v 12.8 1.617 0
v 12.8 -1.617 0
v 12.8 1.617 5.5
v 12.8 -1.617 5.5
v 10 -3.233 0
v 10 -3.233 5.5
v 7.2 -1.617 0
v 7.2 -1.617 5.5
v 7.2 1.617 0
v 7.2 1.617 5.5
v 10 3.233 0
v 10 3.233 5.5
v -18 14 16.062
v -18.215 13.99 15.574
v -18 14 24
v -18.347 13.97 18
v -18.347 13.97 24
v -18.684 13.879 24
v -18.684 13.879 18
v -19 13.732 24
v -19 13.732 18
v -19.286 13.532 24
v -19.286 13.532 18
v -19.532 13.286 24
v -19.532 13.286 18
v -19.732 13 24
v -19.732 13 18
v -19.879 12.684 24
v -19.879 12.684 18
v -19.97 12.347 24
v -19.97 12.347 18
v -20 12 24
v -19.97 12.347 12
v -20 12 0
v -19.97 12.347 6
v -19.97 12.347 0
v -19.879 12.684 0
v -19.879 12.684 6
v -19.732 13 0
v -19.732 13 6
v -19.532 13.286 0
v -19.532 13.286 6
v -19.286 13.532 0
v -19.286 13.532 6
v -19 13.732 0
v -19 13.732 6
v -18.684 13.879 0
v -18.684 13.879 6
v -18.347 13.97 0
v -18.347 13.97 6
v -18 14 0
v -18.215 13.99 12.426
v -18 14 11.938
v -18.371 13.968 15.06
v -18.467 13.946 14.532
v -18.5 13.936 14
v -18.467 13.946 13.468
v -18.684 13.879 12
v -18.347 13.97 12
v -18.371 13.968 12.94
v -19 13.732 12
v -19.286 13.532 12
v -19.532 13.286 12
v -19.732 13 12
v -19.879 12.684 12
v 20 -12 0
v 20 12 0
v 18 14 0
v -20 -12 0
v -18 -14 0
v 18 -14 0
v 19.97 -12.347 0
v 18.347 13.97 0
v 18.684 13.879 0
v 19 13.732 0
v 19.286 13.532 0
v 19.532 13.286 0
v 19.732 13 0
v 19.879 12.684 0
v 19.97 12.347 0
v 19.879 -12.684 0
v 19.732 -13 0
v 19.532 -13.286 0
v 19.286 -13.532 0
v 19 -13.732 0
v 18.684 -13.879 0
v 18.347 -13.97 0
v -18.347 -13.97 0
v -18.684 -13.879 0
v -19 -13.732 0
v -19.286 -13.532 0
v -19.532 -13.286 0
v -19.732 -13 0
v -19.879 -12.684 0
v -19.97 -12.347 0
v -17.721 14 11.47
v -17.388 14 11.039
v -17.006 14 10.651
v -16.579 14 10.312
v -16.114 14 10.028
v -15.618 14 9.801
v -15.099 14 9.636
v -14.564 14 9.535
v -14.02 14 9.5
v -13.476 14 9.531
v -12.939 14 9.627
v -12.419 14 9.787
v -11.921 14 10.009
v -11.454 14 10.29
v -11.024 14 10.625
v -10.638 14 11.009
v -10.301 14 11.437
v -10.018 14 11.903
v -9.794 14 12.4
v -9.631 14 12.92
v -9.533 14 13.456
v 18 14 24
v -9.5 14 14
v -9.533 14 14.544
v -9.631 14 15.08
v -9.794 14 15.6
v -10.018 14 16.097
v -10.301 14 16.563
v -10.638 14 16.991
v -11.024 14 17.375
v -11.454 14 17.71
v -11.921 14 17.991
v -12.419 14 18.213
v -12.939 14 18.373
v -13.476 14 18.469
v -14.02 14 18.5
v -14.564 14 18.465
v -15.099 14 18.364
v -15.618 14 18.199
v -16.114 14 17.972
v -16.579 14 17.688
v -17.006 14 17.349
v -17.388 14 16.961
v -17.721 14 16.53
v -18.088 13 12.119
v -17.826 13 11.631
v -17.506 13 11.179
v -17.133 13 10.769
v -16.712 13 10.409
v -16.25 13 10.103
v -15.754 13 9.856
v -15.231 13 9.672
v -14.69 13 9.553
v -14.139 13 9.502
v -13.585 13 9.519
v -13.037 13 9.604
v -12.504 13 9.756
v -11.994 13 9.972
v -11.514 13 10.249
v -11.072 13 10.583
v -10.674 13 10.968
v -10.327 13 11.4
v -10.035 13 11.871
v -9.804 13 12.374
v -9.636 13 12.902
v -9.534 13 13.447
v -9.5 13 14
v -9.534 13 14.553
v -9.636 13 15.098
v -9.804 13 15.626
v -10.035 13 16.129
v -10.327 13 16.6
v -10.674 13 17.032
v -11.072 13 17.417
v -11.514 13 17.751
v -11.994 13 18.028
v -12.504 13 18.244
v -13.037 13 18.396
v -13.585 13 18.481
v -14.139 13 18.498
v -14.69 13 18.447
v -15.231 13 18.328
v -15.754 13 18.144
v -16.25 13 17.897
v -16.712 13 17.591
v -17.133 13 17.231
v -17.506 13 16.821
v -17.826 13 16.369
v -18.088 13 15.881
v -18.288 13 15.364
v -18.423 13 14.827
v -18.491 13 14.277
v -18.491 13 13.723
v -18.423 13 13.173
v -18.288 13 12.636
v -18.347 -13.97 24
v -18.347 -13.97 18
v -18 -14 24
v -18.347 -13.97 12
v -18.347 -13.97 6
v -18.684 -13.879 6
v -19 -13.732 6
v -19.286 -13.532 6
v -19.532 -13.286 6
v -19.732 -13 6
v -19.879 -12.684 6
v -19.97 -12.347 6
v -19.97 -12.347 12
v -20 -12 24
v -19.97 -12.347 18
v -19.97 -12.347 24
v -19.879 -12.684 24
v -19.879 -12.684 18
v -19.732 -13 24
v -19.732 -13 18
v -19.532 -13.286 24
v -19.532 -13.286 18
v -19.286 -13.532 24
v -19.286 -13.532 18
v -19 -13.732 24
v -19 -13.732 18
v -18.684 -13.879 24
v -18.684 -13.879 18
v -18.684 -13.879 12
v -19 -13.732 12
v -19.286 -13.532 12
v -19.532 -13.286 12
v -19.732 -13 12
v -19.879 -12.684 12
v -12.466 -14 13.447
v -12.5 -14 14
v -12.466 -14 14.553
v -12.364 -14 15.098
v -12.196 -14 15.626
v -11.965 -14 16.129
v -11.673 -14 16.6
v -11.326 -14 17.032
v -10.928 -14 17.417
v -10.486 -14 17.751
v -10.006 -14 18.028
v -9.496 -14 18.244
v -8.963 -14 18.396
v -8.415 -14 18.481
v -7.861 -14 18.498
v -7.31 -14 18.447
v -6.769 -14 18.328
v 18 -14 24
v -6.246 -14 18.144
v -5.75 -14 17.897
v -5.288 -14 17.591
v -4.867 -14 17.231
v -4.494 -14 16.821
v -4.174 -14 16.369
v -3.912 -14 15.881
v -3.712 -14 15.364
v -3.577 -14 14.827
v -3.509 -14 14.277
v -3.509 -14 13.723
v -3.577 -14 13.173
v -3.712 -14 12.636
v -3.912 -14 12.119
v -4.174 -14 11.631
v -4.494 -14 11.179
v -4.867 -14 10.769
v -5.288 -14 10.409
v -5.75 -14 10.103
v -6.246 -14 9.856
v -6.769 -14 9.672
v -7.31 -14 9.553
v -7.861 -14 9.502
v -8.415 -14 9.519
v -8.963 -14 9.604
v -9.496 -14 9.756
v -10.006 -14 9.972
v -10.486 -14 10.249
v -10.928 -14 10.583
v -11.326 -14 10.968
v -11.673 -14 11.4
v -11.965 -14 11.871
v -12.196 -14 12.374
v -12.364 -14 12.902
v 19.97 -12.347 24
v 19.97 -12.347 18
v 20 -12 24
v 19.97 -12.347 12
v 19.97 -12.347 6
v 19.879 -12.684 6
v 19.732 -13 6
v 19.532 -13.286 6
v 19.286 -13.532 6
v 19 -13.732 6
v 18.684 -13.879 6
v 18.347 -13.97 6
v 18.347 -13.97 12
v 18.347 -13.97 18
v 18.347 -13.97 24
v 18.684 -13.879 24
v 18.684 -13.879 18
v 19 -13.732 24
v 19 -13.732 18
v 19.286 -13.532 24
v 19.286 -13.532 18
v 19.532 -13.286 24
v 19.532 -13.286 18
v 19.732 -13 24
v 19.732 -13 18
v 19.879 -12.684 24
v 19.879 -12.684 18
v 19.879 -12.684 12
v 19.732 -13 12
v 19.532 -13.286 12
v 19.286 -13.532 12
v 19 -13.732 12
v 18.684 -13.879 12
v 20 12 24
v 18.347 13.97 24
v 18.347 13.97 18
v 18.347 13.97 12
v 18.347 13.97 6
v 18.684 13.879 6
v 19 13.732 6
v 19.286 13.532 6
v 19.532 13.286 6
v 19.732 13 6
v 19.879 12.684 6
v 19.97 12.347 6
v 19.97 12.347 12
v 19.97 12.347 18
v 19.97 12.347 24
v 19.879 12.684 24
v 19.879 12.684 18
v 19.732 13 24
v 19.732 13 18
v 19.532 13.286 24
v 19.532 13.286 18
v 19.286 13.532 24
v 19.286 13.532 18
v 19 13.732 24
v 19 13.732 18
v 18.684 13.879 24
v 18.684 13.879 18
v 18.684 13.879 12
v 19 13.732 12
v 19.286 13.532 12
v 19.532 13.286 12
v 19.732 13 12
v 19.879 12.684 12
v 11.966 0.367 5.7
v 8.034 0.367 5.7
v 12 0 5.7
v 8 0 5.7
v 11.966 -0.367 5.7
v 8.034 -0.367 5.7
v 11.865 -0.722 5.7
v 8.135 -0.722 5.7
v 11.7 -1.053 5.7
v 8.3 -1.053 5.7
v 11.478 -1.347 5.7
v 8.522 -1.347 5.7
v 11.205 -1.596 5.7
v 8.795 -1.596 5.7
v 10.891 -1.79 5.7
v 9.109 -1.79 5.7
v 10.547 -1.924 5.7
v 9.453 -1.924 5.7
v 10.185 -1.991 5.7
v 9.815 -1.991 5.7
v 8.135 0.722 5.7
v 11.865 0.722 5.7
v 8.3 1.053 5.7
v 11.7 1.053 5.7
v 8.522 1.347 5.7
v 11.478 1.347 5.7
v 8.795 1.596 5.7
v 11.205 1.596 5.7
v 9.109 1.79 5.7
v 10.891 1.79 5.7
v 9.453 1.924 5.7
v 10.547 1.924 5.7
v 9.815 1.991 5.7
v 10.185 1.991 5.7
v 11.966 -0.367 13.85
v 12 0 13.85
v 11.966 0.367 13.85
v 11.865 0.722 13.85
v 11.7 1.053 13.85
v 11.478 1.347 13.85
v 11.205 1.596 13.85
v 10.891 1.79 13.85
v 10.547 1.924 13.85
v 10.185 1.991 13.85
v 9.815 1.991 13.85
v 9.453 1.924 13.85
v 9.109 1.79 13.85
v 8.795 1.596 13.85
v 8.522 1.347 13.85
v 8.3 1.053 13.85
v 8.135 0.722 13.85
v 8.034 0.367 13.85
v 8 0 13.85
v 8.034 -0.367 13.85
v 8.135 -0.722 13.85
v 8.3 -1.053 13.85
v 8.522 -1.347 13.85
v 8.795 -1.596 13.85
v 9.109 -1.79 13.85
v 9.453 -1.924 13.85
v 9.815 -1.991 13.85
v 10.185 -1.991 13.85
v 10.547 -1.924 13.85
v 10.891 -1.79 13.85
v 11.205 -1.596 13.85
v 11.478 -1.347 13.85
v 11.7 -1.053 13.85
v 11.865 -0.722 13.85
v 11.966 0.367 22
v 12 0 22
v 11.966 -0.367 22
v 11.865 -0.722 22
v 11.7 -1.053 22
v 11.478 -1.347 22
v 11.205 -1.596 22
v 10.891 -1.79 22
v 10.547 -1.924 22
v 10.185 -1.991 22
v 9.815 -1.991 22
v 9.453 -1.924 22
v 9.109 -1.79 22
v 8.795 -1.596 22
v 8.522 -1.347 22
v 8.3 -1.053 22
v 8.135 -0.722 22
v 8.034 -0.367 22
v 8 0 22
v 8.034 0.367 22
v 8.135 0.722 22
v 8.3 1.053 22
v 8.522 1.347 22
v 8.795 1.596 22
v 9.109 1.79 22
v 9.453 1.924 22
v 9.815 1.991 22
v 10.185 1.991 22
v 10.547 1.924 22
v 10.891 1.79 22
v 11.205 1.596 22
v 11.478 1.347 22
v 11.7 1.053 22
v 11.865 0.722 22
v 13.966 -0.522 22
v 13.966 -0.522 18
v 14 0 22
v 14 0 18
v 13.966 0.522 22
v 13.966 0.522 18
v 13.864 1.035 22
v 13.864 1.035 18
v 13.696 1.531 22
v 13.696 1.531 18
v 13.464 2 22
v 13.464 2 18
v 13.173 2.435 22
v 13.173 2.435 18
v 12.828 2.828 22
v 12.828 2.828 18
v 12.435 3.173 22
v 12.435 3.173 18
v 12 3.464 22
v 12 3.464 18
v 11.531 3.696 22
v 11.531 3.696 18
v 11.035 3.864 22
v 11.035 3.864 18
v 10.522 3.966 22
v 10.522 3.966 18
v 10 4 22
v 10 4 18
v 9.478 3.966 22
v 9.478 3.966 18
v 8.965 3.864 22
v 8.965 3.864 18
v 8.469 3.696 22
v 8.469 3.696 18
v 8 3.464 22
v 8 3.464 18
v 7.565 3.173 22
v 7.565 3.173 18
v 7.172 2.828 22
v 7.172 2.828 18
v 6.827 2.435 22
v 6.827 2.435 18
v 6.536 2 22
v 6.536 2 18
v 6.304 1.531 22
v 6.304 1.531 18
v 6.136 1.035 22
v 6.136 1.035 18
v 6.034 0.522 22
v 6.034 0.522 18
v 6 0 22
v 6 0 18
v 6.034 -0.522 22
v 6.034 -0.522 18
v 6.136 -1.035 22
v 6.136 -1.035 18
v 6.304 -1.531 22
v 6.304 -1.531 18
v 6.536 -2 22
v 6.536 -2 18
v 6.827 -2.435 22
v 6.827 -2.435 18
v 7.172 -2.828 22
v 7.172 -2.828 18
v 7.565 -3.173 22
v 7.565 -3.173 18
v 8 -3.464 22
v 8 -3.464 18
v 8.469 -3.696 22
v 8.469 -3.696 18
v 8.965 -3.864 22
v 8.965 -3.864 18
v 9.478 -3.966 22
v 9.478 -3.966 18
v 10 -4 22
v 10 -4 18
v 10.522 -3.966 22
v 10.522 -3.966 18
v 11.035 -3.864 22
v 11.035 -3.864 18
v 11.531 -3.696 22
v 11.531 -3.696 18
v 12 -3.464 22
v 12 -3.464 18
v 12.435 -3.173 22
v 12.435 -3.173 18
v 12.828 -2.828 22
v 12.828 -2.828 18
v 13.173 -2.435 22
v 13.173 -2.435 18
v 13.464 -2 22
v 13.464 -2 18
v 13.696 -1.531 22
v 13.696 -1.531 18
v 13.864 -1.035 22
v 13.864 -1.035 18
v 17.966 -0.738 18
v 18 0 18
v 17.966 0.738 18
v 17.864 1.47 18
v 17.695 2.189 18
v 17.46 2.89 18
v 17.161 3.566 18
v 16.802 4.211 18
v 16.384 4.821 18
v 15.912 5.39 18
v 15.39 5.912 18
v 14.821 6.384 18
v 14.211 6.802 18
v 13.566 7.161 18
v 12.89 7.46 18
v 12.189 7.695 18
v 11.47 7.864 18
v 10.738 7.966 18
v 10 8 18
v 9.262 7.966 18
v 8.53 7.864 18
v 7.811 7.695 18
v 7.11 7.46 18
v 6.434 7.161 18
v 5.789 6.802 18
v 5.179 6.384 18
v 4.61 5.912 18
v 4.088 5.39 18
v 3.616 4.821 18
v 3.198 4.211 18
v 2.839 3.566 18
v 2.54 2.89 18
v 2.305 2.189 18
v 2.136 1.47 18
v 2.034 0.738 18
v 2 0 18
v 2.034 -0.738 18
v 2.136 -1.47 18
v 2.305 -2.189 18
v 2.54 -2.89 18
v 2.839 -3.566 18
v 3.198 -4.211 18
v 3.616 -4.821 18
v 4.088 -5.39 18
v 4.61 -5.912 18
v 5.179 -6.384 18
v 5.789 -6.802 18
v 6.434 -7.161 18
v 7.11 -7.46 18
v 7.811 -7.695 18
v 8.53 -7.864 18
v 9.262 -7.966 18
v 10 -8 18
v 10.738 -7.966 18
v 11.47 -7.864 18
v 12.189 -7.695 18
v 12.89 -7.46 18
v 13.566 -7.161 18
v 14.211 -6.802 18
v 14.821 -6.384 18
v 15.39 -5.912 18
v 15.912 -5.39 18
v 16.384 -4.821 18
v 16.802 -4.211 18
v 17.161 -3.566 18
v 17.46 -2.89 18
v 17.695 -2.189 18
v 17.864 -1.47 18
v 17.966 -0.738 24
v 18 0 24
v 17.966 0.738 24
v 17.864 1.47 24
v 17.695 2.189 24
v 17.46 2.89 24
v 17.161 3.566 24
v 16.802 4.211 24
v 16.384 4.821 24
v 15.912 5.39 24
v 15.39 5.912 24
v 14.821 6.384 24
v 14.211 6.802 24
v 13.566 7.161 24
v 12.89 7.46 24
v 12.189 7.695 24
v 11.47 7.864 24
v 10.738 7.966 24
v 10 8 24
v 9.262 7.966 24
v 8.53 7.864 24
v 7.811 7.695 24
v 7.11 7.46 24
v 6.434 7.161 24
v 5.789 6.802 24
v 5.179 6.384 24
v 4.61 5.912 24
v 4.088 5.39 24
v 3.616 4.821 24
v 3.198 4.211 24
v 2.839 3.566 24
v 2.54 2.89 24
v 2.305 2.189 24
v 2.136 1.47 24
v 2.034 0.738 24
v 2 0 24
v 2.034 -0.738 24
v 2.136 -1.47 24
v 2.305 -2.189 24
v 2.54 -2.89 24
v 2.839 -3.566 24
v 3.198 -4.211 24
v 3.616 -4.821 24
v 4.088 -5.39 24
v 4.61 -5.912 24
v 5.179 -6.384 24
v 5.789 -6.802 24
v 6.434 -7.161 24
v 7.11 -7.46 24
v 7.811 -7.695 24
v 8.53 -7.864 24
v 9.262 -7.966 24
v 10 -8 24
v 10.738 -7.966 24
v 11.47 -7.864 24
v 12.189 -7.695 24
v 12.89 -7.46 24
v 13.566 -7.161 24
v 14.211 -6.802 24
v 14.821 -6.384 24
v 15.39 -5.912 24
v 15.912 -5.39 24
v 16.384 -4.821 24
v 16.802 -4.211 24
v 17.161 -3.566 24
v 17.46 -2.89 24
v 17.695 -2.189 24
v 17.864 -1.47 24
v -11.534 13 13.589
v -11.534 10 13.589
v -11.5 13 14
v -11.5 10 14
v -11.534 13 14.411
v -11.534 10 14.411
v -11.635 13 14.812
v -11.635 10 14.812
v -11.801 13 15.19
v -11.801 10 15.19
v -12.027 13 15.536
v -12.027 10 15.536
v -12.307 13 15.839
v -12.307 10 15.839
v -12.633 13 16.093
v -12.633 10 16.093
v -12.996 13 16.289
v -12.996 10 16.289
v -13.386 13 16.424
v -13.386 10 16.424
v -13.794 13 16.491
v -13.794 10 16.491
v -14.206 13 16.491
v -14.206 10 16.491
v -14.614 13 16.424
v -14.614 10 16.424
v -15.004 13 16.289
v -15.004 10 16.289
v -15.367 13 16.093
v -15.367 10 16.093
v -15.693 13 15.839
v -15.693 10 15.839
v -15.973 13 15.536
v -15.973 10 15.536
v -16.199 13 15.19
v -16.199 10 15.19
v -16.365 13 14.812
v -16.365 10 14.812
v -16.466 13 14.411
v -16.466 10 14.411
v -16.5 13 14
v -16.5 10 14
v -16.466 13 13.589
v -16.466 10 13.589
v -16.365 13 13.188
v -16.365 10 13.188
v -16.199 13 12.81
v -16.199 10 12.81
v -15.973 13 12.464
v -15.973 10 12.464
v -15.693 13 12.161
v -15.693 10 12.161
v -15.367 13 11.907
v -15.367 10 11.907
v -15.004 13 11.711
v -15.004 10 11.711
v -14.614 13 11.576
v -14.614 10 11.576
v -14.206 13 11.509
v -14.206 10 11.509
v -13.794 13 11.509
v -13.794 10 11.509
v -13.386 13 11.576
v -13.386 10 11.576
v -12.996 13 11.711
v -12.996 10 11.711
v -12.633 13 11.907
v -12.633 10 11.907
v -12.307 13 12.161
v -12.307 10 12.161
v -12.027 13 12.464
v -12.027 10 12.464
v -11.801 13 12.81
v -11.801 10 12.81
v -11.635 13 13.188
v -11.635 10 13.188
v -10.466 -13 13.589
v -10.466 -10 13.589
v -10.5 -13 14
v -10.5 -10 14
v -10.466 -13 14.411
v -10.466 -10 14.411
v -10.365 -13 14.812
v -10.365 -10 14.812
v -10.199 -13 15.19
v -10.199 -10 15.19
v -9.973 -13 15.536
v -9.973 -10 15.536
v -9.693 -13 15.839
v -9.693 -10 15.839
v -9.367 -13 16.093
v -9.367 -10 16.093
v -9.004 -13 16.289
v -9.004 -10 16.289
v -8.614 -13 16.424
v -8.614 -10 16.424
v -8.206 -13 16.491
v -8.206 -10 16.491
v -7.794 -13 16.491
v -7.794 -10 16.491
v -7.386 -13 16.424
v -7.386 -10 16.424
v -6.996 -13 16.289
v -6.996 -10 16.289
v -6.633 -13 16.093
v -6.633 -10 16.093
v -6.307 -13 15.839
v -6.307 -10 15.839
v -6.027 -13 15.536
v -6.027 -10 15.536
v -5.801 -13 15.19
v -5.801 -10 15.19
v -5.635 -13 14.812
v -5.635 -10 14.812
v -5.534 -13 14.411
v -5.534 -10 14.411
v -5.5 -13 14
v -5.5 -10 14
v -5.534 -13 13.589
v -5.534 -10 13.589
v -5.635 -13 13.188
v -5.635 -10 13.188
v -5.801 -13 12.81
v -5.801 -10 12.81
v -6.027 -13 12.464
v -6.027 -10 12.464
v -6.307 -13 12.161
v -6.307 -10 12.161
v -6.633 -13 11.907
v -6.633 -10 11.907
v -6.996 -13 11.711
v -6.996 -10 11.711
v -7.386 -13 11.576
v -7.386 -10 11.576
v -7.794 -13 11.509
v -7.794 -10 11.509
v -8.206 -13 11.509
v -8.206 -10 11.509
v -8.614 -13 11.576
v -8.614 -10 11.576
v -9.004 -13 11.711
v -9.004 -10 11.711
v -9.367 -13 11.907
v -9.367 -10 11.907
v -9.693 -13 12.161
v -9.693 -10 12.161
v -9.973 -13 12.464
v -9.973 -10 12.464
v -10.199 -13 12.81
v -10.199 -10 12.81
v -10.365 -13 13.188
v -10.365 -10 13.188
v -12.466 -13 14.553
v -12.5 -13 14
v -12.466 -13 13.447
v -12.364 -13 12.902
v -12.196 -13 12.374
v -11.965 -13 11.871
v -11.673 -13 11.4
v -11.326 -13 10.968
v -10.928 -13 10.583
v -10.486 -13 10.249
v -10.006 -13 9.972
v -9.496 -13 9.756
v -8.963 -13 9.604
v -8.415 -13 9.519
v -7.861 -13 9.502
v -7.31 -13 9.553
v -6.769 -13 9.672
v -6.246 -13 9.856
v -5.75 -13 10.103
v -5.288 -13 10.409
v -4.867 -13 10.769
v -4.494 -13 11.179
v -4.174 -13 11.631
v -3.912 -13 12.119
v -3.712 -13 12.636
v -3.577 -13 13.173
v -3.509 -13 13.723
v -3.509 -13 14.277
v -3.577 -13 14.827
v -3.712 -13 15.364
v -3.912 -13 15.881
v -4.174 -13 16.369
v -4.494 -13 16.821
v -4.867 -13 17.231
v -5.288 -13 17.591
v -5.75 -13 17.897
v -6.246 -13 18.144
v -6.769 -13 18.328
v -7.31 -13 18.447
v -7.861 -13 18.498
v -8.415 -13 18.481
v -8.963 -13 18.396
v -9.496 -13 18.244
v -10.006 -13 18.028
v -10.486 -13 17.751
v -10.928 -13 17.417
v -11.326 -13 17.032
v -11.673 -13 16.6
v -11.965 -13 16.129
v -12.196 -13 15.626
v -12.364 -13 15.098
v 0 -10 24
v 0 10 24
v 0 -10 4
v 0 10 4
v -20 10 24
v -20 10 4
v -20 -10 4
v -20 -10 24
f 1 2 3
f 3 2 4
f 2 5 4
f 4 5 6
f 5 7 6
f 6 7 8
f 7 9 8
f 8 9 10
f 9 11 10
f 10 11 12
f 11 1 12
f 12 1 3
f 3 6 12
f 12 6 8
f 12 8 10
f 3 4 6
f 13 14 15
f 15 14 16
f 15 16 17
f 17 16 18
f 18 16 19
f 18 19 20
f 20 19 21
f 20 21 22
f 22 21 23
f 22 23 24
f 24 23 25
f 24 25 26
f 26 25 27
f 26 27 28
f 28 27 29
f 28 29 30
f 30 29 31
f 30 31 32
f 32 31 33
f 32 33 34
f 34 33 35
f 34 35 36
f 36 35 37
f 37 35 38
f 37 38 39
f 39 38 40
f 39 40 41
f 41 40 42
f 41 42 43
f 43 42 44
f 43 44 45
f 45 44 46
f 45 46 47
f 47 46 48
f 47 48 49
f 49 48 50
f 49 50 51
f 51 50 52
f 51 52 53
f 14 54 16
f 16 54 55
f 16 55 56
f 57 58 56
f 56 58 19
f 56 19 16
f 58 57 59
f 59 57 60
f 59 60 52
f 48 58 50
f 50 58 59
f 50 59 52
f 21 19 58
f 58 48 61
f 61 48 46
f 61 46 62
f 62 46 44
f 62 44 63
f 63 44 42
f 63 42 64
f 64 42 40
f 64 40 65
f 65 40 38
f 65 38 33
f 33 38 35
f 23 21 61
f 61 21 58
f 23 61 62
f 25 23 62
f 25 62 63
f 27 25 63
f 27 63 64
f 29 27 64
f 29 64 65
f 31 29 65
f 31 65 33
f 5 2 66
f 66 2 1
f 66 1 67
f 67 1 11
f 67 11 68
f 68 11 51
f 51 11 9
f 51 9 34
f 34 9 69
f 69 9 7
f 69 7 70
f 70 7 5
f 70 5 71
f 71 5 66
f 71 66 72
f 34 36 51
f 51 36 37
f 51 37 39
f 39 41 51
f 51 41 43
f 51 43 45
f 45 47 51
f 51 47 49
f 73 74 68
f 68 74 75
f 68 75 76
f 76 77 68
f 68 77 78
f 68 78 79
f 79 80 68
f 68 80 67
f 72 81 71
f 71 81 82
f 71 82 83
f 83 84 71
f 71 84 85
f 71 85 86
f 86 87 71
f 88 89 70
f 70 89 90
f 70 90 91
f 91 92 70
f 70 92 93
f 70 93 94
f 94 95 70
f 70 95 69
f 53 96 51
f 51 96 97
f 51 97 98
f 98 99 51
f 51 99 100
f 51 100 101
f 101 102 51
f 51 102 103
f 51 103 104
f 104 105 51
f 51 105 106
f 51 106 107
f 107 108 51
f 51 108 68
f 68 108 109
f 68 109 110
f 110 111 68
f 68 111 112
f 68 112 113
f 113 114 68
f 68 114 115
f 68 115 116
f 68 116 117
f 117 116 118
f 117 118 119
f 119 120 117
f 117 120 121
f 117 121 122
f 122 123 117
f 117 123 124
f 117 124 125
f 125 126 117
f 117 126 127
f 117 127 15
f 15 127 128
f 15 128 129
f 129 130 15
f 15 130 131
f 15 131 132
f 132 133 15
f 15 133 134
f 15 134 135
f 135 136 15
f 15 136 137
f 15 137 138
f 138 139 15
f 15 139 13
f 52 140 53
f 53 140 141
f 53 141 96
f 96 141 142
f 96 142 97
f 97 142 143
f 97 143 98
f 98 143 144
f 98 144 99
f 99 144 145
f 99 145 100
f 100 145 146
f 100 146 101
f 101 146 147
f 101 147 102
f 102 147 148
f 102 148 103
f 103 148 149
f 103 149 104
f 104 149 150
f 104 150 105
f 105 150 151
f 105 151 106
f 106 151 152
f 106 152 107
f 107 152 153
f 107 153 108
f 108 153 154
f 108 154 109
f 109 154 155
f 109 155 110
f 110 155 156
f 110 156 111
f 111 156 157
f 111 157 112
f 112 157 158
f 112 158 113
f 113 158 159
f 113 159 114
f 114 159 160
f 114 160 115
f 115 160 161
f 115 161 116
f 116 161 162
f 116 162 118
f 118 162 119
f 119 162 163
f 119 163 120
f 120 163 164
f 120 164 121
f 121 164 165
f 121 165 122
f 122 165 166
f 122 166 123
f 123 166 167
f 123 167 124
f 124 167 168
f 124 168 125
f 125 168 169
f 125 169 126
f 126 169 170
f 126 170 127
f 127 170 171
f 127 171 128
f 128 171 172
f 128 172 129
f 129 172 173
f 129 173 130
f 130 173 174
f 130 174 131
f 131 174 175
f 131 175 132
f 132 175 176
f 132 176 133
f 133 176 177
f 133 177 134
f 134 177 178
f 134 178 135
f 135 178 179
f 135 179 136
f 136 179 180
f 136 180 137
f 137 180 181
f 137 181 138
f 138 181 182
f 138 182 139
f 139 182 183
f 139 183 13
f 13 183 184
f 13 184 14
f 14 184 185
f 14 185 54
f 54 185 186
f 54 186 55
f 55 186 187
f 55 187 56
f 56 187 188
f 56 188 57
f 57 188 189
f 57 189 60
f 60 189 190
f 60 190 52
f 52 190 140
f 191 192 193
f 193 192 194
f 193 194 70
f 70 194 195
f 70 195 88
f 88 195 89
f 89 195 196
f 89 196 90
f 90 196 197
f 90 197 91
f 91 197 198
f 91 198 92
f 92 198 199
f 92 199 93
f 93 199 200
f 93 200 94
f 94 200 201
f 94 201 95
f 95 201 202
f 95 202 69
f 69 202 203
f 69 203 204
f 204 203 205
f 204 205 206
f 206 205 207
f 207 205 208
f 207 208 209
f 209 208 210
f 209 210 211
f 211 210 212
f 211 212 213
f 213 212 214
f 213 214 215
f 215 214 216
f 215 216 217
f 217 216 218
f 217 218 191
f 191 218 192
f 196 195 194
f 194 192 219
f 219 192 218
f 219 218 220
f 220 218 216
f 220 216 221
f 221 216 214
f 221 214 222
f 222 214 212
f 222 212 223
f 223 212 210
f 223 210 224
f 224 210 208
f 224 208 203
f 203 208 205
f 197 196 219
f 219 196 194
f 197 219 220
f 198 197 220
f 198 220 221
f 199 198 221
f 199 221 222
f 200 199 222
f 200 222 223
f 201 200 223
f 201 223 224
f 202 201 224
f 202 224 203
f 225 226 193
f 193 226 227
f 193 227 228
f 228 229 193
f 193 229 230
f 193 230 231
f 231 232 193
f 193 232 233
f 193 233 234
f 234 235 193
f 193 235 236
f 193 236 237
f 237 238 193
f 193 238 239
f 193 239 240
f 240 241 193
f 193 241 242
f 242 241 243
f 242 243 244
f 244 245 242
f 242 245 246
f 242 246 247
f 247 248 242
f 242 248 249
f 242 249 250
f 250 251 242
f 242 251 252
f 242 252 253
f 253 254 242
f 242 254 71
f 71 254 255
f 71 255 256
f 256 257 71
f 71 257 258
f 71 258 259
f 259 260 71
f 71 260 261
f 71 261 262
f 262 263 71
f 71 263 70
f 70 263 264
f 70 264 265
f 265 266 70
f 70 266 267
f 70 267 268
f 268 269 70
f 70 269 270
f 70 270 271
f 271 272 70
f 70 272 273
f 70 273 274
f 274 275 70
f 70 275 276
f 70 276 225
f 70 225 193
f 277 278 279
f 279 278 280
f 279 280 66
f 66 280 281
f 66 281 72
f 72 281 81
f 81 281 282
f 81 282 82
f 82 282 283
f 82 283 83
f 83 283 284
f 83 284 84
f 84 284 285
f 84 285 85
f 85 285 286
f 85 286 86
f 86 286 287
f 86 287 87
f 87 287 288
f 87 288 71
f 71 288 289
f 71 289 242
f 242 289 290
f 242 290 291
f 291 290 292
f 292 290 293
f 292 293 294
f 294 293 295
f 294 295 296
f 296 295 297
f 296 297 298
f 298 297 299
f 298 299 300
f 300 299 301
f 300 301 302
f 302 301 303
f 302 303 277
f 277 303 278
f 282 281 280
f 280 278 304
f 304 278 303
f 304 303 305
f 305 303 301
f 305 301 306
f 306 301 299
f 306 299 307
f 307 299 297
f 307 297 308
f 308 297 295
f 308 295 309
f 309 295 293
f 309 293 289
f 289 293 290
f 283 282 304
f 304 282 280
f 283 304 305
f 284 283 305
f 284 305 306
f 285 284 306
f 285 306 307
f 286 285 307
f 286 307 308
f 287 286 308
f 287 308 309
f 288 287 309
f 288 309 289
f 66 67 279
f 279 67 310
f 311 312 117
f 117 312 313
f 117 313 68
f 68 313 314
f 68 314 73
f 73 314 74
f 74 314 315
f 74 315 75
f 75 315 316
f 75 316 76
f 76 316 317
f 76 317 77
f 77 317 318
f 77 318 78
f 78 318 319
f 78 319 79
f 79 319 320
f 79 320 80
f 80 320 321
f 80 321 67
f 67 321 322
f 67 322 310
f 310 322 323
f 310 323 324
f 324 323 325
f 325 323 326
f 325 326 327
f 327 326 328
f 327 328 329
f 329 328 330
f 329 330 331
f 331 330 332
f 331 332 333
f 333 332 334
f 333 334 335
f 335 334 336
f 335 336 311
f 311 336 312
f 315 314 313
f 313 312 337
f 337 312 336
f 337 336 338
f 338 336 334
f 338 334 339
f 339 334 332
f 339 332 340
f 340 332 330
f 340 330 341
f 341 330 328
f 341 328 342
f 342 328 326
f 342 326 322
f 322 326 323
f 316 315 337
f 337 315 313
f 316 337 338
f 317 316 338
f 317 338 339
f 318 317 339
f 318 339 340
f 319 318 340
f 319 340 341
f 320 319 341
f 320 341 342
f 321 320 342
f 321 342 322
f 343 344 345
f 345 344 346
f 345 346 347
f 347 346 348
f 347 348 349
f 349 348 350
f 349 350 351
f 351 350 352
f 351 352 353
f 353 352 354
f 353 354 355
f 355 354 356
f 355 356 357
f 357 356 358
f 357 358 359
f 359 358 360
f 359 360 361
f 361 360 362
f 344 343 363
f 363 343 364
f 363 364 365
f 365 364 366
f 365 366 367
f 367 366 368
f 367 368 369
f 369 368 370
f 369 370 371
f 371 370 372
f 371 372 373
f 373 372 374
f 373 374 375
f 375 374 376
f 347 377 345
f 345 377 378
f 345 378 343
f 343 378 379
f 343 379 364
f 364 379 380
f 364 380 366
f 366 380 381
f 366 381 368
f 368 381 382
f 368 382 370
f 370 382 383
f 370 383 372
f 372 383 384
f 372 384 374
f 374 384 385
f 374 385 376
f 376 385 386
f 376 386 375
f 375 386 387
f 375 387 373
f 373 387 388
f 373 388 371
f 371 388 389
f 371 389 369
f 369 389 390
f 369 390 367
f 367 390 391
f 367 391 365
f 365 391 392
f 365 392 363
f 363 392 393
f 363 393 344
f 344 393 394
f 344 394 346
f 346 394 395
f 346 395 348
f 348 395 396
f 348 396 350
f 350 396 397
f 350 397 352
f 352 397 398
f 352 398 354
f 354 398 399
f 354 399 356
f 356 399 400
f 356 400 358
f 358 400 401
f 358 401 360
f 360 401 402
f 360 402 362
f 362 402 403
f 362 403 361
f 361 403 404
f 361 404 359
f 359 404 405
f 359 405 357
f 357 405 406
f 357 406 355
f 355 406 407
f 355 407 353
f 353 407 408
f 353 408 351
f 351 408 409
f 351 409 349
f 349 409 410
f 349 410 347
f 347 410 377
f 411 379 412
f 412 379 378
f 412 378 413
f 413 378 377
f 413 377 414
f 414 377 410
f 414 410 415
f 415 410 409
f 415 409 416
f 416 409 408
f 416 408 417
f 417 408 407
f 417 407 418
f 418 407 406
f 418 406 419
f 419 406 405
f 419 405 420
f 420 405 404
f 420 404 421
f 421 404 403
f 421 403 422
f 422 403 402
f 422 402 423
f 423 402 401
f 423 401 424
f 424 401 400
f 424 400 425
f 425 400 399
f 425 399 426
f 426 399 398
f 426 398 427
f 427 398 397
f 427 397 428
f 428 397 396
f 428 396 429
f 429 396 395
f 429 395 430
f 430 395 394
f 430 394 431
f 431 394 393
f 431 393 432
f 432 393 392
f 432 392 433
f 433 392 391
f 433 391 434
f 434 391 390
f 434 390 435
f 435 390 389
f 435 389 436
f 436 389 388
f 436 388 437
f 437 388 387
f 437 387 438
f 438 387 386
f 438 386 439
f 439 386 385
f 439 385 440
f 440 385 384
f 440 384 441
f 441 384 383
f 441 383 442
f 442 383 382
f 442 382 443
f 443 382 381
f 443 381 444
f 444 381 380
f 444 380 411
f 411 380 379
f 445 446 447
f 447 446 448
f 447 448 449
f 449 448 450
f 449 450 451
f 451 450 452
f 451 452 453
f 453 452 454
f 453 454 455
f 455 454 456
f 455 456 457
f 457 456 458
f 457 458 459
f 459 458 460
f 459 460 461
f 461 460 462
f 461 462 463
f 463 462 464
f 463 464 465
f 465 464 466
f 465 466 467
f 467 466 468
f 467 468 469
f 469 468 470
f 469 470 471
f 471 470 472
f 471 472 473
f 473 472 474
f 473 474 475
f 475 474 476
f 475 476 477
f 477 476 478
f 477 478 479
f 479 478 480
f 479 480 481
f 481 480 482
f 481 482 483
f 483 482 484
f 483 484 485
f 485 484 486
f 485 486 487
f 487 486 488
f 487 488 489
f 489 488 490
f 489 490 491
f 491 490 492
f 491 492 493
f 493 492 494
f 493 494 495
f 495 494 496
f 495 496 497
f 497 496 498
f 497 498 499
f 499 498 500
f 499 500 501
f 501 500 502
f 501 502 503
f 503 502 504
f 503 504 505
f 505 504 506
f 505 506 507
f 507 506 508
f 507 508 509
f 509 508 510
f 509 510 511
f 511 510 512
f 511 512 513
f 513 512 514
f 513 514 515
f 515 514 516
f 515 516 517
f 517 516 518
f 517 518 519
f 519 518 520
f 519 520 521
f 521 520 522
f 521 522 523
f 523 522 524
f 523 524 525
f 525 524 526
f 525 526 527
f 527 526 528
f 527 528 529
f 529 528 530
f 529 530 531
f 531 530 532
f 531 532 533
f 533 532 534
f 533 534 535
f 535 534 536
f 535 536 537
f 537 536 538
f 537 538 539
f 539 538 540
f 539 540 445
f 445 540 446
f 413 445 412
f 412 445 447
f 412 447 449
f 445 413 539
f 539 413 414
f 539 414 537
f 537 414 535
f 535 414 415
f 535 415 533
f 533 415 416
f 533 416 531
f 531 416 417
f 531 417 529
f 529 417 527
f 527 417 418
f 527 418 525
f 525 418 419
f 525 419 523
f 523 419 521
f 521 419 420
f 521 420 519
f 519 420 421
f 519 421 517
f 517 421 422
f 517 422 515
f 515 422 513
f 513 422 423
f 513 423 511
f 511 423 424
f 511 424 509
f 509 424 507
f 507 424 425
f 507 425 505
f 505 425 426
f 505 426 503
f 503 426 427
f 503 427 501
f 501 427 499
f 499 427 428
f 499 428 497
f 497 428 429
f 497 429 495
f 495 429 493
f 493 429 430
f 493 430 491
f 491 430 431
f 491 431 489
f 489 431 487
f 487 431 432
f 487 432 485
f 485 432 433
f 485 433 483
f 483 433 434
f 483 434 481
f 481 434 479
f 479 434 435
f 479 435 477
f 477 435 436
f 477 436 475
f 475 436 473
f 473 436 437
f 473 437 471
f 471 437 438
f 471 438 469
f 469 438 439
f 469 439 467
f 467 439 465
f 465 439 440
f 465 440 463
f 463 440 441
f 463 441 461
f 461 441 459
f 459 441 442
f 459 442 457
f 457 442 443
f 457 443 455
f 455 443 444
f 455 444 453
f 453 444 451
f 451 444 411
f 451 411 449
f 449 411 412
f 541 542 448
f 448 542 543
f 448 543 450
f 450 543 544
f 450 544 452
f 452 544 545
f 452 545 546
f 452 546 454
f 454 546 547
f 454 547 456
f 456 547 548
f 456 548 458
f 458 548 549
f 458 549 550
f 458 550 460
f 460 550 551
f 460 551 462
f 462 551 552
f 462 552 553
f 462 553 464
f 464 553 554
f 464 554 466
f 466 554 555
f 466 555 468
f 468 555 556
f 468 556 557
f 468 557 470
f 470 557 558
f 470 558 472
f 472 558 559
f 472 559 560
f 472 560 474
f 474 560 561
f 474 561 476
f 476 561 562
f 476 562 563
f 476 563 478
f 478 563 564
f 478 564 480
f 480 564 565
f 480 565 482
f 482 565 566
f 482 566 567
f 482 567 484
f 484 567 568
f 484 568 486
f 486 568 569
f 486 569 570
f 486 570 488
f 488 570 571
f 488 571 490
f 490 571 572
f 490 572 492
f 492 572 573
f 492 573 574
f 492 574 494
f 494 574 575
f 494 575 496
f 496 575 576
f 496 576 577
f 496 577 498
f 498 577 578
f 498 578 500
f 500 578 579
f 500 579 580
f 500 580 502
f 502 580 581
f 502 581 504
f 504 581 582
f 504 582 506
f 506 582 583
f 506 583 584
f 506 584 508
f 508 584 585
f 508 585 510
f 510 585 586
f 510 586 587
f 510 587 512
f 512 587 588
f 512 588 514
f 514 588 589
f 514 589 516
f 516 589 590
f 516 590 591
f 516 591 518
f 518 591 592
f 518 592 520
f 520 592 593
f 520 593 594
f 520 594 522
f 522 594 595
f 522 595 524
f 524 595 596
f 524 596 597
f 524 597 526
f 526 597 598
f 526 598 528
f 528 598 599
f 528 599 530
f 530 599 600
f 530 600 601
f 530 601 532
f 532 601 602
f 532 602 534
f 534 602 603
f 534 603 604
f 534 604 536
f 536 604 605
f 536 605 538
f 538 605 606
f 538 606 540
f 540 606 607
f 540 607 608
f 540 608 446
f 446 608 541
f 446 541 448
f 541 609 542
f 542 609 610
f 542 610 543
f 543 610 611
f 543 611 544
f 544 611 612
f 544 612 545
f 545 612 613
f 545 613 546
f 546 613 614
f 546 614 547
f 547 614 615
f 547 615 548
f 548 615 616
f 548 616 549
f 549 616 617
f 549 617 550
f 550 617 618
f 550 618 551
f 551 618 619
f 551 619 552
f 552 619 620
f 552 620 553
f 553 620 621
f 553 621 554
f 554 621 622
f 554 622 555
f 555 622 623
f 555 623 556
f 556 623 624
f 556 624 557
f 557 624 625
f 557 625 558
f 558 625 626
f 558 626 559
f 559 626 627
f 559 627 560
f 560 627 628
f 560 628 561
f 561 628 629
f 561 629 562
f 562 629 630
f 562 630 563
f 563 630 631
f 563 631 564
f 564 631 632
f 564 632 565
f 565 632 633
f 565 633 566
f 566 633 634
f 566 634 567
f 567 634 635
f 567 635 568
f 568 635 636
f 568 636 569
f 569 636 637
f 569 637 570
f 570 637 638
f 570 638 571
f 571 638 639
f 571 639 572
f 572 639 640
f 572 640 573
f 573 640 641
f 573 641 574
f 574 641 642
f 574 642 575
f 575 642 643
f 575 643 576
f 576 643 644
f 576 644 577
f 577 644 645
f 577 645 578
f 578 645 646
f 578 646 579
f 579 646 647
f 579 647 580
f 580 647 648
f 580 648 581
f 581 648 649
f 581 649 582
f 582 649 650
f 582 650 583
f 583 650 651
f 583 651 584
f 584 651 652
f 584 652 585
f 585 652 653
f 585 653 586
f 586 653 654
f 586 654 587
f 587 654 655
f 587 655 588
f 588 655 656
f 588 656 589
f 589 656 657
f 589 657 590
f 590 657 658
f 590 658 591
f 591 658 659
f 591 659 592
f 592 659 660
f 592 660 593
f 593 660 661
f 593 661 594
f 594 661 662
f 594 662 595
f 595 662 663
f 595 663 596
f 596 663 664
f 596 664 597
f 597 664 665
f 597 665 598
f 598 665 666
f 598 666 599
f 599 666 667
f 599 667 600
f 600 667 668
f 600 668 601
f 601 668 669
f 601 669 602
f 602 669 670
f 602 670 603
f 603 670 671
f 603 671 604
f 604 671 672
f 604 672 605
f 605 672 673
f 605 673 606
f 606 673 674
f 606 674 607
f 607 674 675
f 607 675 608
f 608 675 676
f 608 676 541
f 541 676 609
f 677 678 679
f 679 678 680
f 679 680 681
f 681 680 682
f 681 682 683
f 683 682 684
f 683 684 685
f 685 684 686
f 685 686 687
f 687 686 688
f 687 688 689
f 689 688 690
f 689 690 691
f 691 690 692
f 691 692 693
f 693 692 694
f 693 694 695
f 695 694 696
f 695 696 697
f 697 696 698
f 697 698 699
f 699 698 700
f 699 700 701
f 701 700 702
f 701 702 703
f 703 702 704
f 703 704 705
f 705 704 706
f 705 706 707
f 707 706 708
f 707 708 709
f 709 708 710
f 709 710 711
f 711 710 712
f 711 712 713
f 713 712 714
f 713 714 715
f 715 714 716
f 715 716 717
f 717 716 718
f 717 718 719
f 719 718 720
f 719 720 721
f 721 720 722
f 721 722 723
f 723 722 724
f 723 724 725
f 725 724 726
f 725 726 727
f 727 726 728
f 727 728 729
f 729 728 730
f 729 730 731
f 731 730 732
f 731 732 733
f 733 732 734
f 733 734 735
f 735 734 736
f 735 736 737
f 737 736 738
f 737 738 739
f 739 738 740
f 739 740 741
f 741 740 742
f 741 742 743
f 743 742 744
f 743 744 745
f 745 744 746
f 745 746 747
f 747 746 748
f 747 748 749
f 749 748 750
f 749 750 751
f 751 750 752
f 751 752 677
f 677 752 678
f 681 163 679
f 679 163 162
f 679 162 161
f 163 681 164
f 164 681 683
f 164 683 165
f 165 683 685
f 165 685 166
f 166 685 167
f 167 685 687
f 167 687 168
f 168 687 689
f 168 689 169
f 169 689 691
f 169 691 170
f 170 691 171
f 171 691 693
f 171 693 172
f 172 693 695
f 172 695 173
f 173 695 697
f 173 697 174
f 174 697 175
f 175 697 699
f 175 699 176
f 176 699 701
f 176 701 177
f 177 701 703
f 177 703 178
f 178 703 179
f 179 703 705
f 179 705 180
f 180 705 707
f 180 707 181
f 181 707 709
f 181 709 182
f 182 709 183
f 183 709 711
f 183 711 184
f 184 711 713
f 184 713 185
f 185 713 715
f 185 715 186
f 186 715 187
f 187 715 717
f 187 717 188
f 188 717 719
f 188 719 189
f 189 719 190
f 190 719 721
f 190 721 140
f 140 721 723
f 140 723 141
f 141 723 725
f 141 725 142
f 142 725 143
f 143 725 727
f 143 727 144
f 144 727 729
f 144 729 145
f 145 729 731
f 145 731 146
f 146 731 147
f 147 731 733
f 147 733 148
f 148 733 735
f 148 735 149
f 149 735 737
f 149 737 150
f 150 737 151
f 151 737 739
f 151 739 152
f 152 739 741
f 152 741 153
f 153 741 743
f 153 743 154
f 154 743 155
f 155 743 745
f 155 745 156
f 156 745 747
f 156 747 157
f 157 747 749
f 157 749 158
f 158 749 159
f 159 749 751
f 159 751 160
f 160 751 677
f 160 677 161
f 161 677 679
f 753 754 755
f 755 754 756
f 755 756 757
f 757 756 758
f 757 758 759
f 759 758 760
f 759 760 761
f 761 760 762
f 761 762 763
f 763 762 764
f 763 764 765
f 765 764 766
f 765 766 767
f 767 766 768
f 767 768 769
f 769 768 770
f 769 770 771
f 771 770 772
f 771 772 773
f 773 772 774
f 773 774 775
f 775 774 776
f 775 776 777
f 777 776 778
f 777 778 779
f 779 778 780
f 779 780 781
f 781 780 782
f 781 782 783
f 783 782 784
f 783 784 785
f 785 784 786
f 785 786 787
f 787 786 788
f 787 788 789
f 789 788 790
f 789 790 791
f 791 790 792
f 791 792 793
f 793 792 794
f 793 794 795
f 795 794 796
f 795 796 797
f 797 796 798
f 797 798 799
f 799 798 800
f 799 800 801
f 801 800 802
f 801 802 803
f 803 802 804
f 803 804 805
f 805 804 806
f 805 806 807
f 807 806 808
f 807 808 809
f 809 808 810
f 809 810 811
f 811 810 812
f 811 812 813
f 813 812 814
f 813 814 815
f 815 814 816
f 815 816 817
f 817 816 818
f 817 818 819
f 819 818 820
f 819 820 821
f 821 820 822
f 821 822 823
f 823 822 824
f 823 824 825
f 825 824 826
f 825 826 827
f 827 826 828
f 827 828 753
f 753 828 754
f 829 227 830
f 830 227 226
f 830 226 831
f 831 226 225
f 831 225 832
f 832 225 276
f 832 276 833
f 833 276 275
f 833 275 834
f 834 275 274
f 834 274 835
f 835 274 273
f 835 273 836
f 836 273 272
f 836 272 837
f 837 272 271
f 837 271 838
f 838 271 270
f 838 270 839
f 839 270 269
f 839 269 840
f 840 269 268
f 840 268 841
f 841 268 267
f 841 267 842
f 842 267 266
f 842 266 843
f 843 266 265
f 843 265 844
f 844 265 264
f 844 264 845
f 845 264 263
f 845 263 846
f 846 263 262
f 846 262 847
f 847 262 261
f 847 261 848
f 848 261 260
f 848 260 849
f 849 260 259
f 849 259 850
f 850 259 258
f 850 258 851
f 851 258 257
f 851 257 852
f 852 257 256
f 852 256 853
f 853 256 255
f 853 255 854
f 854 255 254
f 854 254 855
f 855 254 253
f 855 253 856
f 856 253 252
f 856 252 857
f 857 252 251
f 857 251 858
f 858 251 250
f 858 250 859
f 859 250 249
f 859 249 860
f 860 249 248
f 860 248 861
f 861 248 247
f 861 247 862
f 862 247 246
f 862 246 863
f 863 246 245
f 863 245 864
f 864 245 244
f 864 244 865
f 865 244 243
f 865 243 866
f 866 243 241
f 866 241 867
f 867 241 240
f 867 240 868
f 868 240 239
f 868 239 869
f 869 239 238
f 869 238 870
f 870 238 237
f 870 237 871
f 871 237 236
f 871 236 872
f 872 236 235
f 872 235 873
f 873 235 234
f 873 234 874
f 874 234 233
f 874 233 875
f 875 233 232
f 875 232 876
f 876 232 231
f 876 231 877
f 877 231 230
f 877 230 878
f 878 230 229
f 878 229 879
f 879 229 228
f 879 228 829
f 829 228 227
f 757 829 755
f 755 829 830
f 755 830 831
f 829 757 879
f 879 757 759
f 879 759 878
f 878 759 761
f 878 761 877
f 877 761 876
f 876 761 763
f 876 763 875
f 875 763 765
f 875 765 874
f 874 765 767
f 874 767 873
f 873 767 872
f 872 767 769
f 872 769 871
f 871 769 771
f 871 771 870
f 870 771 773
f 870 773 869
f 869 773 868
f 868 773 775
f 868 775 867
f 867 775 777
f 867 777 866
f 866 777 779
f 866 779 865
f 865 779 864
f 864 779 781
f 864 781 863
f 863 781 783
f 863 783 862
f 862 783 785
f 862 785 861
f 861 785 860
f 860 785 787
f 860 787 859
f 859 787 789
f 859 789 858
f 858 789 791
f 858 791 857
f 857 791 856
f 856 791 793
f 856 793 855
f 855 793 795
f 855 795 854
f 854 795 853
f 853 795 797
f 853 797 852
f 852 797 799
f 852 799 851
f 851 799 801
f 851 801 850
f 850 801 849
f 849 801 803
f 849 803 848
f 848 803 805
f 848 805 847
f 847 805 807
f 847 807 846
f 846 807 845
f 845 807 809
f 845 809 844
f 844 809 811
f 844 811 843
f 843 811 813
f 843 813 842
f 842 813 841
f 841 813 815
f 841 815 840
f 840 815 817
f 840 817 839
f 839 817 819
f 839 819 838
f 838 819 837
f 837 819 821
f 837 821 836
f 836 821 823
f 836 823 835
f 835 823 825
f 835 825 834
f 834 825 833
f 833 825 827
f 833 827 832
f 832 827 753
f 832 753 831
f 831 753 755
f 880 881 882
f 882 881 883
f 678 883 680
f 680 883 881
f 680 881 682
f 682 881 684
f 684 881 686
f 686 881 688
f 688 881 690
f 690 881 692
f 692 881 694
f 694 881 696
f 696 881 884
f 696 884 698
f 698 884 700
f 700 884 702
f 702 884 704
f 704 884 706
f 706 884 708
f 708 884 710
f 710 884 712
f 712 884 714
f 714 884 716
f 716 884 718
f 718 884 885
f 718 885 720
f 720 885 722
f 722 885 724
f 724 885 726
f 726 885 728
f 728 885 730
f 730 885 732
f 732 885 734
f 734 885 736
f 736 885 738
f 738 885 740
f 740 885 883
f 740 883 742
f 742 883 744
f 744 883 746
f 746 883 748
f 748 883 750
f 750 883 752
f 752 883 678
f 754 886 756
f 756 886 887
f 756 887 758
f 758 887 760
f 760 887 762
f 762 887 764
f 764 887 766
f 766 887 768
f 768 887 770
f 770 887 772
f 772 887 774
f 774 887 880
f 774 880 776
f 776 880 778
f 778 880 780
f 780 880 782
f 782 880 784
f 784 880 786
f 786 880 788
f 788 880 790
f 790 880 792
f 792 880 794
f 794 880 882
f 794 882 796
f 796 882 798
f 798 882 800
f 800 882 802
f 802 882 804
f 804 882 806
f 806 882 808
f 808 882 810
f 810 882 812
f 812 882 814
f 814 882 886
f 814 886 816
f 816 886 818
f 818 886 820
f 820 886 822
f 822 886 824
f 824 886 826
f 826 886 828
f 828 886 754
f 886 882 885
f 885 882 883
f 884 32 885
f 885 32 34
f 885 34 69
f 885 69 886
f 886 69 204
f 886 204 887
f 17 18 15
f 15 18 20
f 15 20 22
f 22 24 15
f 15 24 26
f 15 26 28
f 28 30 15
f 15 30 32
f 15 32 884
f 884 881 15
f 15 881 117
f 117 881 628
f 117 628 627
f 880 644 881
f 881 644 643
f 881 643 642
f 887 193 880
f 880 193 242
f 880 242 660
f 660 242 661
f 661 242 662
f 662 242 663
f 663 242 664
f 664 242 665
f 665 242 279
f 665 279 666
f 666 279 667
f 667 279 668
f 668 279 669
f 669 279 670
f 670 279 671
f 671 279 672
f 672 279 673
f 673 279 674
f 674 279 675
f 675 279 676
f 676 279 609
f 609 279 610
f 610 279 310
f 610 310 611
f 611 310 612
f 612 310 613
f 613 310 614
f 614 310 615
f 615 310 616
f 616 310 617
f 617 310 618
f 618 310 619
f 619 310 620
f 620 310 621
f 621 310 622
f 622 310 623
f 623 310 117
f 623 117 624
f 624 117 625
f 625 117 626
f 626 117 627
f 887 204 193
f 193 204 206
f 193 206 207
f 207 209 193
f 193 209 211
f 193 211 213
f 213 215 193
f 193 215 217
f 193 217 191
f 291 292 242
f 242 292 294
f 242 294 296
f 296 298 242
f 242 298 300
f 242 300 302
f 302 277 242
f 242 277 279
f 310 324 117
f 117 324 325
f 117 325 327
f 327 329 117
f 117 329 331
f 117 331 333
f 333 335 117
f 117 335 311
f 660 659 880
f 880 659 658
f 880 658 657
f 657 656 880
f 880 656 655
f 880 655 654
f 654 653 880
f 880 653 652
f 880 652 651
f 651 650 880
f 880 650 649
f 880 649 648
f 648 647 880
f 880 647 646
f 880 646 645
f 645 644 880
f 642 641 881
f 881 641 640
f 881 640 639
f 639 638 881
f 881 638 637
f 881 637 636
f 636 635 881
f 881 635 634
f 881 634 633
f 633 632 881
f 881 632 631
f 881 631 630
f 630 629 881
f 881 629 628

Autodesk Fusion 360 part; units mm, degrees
sketch "Sketch1" plane through (0, 0, 0) normal (0, 0, 1) x (1, 0, 0) in component "Mount"
  line L0 (20, 14) -> (-20, 14)
  line L1 (-20, 14) -> (-20, -14)
  line L2 (-20, -14) -> (20, -14)
  line L3 (20, -14) -> (20, 14)
  line L4 (20, 14) -> (-20, -14) construction
  line L5 (-20, 14) -> (20, -14) construction
  dimension "d1" = 40
  dimension "d2" = 28
extrude "Extrude1" add sketch "Sketch1" along normal blind 24 in component "Mount"
sketch "Sketch2" plane through (0, 0, 24) normal (0, 0, 1) x (-1, 0, 0) in component "Mount"
  line L0 (-20, 14) -> (-20, -14)
  line L1 (-20, -14) -> (20, -14)
  line L2 (20, -14) -> (20, 14)
  line L3 (20, 14) -> (-20, 14)
  line L4 (20, -10) -> (0, -10)
  line L5 (0, -10) -> (0, 10)
  line L6 (0, 10) -> (20, 10)
  line L7 (20, 10) -> (20, -10)
  dimension "d5" = 20
  dimension "d6" = 20
  dimension "d7" = 4
extrude "Extrude2" cut sketch "Sketch2" against normal blind 20 contours L2 L4 L5 L6 L7 in component "Mount"
sketch "Sketch3" plane through (0, -14, 0) normal (0, -1, 0) x (1, 0, 0) in component "Mount"
  line L0 (-20, 0) -> (20, 0)
  line L1 (20, 0) -> (20, 24)
  line L2 (20, 24) -> (-20, 24)
  line L3 (-20, 24) -> (-20, 0)
  line L4 (-8, 0) -> (-8, 24) construction
  line L5 (-20, 14) -> (20, 14) construction
  circle A0 centre (-8, 14) radius 2.5
  circle A1 centre (-8, 14) radius 4.5
  dimension "d10" = 12
  dimension "d11" = 10
  dimension "d12" = 5
  dimension "d13" = 9
extrude "Extrude4" cut sketch "Sketch3" against normal blind 1 contours A0 | A1 in component "Mount"
extrude "Extrude3" cut sketch "Sketch3" against normal blind 4 contours A0 in component "Mount"
sketch "Sketch4" plane through (0, 14, 0) normal (0, 1, 0) x (-1, 0, 0) in component "Mount"
  line L0 (-20, 0) -> (20, 0)
  line L1 (20, 0) -> (20, 24)
  line L2 (20, 24) -> (-20, 24)
  line L3 (-20, 24) -> (-20, 0)
  line L4 (14, 24) -> (14, 0) construction
  line L5 (20, 14) -> (-20, 14) construction
  circle A0 centre (14, 14) radius 2.5
  circle A1 centre (14, 14) radius 4.5
  dimension "d18" = 10
  dimension "d19" = 6
  dimension "d20" = 5
  dimension "d21" = 9
extrude "Extrude6" cut sketch "Sketch4" against normal blind 1 contours A0 | A1 in component "Mount"
extrude "Extrude5" cut sketch "Sketch4" against normal blind 4 contours A0 in component "Mount"
sketch "Sketch5" plane through (0, 0, 24) normal (0, 0, 1) x (-1, 0, 0) in component "Mount"
  line L0 (0, 10) -> (20, 10)
  line L1 (20, 10) -> (20, 14)
  line L2 (20, 14) -> (-20, 14)
  line L3 (-20, 14) -> (-20, -14)
  line L4 (-20, -14) -> (20, -14)
  line L5 (20, -14) -> (20, -10)
  line L6 (20, -10) -> (0, -10)
  line L7 (0, -10) -> (0, 10)
  line L8 (0, -10) -> (-20, -10) construction
  line L9 (0, 10) -> (-20, 10) construction
  line L10 (-20, 10) -> (0, -10) construction
  line L11 (0, 10) -> (-20, -10) construction
  circle A0 centre (-10, 0) radius 8
  circle A1 centre (-10, 0) radius 4
  circle A2 centre (-10, 0) radius 2
  dimension "d26" = 16
  dimension "d27" = 8
  dimension "d28" = 4
extrude "Extrude7" cut sketch "Sketch5" against normal blind 6 contours A0 | A1 | A2 in component "Mount"
extrude "Extrude8" add sketch "Sketch5" along normal blind 4 from surface at -6 contours A1 in component "Mount"
extrude "Extrude9" cut sketch "Sketch5" against normal blind 18.3 contours A2 in component "Mount"
fillet "Fillet2" radius 2 4 edges at (20, 14, 12) (20, -14, 12) (-20, -14, 12) (-20, 14, 12) in component "Mount"
sketch "Sketch6" plane through (0, 0, 0) normal (0, 0, -1) x (1, 0, 0) in component "Mount"
  arc A0 (-20, -12) -> (-18, -14) centre (-18, -12) ccw
  line L0 (-18, -14) -> (18, -14)
  arc A1 (18, -14) -> (20, -12) centre (18, -12) ccw
  line L1 (20, -12) -> (20, 12)
  arc A2 (20, 12) -> (18, 14) centre (18, 12) ccw
  line L2 (18, 14) -> (-18, 14)
  arc A3 (-18, 14) -> (-20, 12) centre (-18, 12) ccw
  line L3 (-20, 12) -> (-20, -12)
  line L4 (12.8, -1.6166) -> (12.8, 1.6166)
  line L5 (12.8, 1.6166) -> (10, 3.2332)
  line L6 (10, 3.2332) -> (7.2, 1.6166)
  line L7 (7.2, 1.6166) -> (7.2, -1.6166)
  line L8 (7.2, -1.6166) -> (10, -3.2332)
  line L9 (10, -3.2332) -> (12.8, -1.6166)
  line L10 (10, 0) -> (10, 14) construction
  point P0 (10, 0)
  dimension "d50" = 2.8
extrude "Extrude10" cut sketch "Sketch6" against normal blind 5.5 contours L4 L5 L6 L7 L8 L9 in component "Mount"
component "Mount" placed x (1, 0, 0) y (0, 1, 0) z (0, 0, 1) at (0, 0, 0)
properties part number "Mount"
